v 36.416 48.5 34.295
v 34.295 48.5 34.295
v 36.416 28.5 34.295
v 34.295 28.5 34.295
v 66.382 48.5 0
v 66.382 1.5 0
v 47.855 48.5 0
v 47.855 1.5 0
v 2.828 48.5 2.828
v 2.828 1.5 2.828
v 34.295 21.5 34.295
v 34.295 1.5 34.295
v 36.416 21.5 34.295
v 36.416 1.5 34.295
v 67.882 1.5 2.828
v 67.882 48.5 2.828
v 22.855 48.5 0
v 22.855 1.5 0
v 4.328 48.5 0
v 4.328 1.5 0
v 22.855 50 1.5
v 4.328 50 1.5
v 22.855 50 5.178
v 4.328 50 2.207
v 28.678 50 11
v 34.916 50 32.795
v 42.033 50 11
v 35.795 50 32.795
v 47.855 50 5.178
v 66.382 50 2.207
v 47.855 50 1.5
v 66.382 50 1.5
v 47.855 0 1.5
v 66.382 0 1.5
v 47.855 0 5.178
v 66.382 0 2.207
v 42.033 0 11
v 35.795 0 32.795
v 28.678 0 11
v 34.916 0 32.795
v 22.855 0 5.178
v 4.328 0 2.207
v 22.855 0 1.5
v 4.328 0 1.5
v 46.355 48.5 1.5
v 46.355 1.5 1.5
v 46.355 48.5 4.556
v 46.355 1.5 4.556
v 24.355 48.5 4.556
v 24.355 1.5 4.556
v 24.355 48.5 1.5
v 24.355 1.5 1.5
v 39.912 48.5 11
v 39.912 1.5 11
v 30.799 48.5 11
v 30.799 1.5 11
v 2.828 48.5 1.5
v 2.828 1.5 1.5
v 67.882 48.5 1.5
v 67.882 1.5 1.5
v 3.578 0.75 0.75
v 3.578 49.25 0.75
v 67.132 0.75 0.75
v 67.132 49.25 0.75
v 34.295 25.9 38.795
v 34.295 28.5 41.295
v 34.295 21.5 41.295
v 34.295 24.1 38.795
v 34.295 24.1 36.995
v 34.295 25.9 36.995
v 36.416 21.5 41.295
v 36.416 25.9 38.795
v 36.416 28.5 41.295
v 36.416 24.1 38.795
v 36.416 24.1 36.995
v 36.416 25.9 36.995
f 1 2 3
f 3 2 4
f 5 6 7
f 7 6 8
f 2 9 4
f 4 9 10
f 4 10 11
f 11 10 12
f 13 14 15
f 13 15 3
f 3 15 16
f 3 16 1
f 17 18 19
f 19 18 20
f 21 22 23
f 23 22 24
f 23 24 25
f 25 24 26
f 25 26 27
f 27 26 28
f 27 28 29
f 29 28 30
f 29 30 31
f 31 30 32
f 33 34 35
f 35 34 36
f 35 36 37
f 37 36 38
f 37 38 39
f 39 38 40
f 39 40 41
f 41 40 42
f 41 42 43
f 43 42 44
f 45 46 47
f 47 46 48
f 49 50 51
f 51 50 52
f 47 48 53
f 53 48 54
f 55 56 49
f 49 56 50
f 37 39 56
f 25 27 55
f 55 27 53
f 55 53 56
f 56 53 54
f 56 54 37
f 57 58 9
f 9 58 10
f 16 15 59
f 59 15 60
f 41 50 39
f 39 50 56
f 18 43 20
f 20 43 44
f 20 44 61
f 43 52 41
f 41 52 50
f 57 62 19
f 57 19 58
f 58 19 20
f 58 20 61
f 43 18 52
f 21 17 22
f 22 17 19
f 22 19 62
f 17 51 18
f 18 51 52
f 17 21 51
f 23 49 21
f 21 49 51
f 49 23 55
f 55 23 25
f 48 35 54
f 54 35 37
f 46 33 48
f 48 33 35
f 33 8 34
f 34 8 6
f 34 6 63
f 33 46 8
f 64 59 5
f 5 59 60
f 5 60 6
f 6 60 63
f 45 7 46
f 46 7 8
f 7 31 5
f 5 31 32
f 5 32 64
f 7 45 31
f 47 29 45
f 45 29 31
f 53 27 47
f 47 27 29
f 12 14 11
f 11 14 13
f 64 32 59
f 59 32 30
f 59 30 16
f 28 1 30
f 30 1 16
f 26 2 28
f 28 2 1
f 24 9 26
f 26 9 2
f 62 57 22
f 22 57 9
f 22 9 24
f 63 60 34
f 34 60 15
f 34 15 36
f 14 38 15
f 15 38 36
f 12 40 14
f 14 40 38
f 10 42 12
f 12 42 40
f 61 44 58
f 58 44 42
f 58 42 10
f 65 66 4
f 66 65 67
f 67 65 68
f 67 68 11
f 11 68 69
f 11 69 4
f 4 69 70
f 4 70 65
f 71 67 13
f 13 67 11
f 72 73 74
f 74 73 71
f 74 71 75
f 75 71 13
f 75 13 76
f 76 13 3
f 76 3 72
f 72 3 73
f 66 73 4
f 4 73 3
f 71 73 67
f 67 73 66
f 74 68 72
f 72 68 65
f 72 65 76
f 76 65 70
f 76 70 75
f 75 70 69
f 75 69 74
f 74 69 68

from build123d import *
from OCP.BRepFilletAPI import BRepFilletAPI_MakeChamfer

# Parameters (mm, degrees)
BOSS_EXTRUDE1_DEPTH = 50
CUT_EXTRUDE3_DEPTH  = 94.541434669
CHAMFER2_SIZE       = 4
CHAMFER2_SIZE2      = 2.828427125
CHAMFER3_SIZE       = 1.5
CHAMFER4_SIZE       = 1.5
SKETCH6_W           = 2.121320343
SKETCH6_H           = 7
BOSS_EXTRUDE2_DEPTH = 7
SKETCH7_W           = 1.8
SKETCH7_H           = 1.8
CUT_EXTRUDE4_DEPTH  = 7


with BuildPart() as part:
    # Sketch4 → Boss-Extrude1 (new body)
    with BuildSketch(Plane(origin=(0, 0, 0), x_dir=(1, 0, 0), z_dir=(0, 1, 0))):
        Polygon((0, 0), (70.710678119, 0), (35.355339059, -35.355339059), align=None)
    extrude(amount=BOSS_EXTRUDE1_DEPTH)

    # Sketch5 → Cut-Extrude3 (cut, through all)
    with BuildSketch(Plane.XZ):
        Polygon((39.911688245, 11), (30.798989873, 11), (24.355339059, 4.556349186), (24.355339059, -4.556349186), (30.798989873, -11), (39.911688245, -11), (46.355339059, -4.556349186), (46.355339059, 4.556349186), align=None)
    extrude(amount=-CUT_EXTRUDE3_DEPTH, mode=Mode.SUBTRACT)

    # Chamfer2: one chamfer whose edges measure the first distance from different faces: ONE call of the kernel's chamfer builder (chamfer() names one face for all edges)
    chamfer2_edges_1 = [part.edges().sort_by_distance(p)[0] for p in [
        (0, 25, 0),
    ]]
    chamfer2_side_1 = [part.faces().sort_by_distance(p)[0] for p in [
        (17.67766953, 25, 17.67766953),
    ]]
    chamfer2_edges_2 = [part.edges().sort_by_distance(p)[0] for p in [
        (70.710678119, 25, 0),
    ]]
    chamfer2_side_2 = [part.faces().sort_by_distance(p)[0] for p in [
        (53.033008589, 25, 17.67766953),
    ]]
    chamfer2 = BRepFilletAPI_MakeChamfer(part.part.solid().wrapped)
    for e in chamfer2_edges_1:
        chamfer2.Add(CHAMFER2_SIZE, CHAMFER2_SIZE2, e.wrapped, chamfer2_side_1[0].wrapped)  # the first distance lies on this face
    for e in chamfer2_edges_2:
        chamfer2.Add(CHAMFER2_SIZE, CHAMFER2_SIZE2, e.wrapped, chamfer2_side_2[0].wrapped)  # the first distance lies on this face
    add(Compound.cast(chamfer2.Shape()), mode=Mode.REPLACE)

    # Chamfer3
    chamfer3_edges = [part.edges().sort_by_distance(p)[0] for p in [
        (13.591883092, 0, 0),
        (46.355339059, 0, 2.278174593),
        (13.591883092, 50, 0),
        (24.355339059, 0, 2.278174593),
        (43.133513652, 0, 7.778174593),
        (27.577164466, 0, 7.778174593),
        (46.355339059, 25, 0),
        (46.355339059, 50, 2.278174593),
        (24.355339059, 50, 2.278174593),
        (24.355339059, 25, 0),
        (43.133513652, 50, 7.778174593),
        (27.577164466, 50, 7.778174593),
        (57.118795027, 0, 0),
        (2.828427125, 25, 0),
        (57.118795027, 50, 0),
        (67.882250994, 25, 0),
        (35.355339059, 25, 35.355339059),
    ]]
    chamfer(chamfer3_edges, length=CHAMFER3_SIZE)

    # Chamfer4
    chamfer4_edges = [part.edges().sort_by_distance(p)[0] for p in [
        (18.561553006, 0, 18.561553006),
        (18.561553006, 50, 18.561553006),
        (2.828427125, 0, 2.164213562),
        (67.882250994, 50, 2.164213562),
        (2.828427125, 50, 2.164213562),
        (52.149125113, 50, 18.561553006),
        (35.355339059, 50, 34.294678888),
        (67.882250994, 0, 2.164213562),
        (52.149125113, 0, 18.561553006),
        (35.355339059, 0, 34.294678888),
    ]]
    chamfer(chamfer4_edges, length=CHAMFER4_SIZE)

    # Sketch6 → Boss-Extrude2 (add)
    with BuildSketch(Plane.XY.offset(34.294678888)):
        with Locations((35.355339059, 25)):
            Rectangle(SKETCH6_W, SKETCH6_H)
    extrude(amount=BOSS_EXTRUDE2_DEPTH)

    # Sketch7 → Cut-Extrude4 (cut)
    with BuildSketch(Plane(origin=(36.415999231, 0, 0), x_dir=(0, 0, -1), z_dir=(1, 0, 0))):
        with Locations((-37.894678888, 25)):
            Rectangle(SKETCH7_W, SKETCH7_H)
    extrude(amount=-CUT_EXTRUDE4_DEPTH, mode=Mode.SUBTRACT)


solid = part.part
